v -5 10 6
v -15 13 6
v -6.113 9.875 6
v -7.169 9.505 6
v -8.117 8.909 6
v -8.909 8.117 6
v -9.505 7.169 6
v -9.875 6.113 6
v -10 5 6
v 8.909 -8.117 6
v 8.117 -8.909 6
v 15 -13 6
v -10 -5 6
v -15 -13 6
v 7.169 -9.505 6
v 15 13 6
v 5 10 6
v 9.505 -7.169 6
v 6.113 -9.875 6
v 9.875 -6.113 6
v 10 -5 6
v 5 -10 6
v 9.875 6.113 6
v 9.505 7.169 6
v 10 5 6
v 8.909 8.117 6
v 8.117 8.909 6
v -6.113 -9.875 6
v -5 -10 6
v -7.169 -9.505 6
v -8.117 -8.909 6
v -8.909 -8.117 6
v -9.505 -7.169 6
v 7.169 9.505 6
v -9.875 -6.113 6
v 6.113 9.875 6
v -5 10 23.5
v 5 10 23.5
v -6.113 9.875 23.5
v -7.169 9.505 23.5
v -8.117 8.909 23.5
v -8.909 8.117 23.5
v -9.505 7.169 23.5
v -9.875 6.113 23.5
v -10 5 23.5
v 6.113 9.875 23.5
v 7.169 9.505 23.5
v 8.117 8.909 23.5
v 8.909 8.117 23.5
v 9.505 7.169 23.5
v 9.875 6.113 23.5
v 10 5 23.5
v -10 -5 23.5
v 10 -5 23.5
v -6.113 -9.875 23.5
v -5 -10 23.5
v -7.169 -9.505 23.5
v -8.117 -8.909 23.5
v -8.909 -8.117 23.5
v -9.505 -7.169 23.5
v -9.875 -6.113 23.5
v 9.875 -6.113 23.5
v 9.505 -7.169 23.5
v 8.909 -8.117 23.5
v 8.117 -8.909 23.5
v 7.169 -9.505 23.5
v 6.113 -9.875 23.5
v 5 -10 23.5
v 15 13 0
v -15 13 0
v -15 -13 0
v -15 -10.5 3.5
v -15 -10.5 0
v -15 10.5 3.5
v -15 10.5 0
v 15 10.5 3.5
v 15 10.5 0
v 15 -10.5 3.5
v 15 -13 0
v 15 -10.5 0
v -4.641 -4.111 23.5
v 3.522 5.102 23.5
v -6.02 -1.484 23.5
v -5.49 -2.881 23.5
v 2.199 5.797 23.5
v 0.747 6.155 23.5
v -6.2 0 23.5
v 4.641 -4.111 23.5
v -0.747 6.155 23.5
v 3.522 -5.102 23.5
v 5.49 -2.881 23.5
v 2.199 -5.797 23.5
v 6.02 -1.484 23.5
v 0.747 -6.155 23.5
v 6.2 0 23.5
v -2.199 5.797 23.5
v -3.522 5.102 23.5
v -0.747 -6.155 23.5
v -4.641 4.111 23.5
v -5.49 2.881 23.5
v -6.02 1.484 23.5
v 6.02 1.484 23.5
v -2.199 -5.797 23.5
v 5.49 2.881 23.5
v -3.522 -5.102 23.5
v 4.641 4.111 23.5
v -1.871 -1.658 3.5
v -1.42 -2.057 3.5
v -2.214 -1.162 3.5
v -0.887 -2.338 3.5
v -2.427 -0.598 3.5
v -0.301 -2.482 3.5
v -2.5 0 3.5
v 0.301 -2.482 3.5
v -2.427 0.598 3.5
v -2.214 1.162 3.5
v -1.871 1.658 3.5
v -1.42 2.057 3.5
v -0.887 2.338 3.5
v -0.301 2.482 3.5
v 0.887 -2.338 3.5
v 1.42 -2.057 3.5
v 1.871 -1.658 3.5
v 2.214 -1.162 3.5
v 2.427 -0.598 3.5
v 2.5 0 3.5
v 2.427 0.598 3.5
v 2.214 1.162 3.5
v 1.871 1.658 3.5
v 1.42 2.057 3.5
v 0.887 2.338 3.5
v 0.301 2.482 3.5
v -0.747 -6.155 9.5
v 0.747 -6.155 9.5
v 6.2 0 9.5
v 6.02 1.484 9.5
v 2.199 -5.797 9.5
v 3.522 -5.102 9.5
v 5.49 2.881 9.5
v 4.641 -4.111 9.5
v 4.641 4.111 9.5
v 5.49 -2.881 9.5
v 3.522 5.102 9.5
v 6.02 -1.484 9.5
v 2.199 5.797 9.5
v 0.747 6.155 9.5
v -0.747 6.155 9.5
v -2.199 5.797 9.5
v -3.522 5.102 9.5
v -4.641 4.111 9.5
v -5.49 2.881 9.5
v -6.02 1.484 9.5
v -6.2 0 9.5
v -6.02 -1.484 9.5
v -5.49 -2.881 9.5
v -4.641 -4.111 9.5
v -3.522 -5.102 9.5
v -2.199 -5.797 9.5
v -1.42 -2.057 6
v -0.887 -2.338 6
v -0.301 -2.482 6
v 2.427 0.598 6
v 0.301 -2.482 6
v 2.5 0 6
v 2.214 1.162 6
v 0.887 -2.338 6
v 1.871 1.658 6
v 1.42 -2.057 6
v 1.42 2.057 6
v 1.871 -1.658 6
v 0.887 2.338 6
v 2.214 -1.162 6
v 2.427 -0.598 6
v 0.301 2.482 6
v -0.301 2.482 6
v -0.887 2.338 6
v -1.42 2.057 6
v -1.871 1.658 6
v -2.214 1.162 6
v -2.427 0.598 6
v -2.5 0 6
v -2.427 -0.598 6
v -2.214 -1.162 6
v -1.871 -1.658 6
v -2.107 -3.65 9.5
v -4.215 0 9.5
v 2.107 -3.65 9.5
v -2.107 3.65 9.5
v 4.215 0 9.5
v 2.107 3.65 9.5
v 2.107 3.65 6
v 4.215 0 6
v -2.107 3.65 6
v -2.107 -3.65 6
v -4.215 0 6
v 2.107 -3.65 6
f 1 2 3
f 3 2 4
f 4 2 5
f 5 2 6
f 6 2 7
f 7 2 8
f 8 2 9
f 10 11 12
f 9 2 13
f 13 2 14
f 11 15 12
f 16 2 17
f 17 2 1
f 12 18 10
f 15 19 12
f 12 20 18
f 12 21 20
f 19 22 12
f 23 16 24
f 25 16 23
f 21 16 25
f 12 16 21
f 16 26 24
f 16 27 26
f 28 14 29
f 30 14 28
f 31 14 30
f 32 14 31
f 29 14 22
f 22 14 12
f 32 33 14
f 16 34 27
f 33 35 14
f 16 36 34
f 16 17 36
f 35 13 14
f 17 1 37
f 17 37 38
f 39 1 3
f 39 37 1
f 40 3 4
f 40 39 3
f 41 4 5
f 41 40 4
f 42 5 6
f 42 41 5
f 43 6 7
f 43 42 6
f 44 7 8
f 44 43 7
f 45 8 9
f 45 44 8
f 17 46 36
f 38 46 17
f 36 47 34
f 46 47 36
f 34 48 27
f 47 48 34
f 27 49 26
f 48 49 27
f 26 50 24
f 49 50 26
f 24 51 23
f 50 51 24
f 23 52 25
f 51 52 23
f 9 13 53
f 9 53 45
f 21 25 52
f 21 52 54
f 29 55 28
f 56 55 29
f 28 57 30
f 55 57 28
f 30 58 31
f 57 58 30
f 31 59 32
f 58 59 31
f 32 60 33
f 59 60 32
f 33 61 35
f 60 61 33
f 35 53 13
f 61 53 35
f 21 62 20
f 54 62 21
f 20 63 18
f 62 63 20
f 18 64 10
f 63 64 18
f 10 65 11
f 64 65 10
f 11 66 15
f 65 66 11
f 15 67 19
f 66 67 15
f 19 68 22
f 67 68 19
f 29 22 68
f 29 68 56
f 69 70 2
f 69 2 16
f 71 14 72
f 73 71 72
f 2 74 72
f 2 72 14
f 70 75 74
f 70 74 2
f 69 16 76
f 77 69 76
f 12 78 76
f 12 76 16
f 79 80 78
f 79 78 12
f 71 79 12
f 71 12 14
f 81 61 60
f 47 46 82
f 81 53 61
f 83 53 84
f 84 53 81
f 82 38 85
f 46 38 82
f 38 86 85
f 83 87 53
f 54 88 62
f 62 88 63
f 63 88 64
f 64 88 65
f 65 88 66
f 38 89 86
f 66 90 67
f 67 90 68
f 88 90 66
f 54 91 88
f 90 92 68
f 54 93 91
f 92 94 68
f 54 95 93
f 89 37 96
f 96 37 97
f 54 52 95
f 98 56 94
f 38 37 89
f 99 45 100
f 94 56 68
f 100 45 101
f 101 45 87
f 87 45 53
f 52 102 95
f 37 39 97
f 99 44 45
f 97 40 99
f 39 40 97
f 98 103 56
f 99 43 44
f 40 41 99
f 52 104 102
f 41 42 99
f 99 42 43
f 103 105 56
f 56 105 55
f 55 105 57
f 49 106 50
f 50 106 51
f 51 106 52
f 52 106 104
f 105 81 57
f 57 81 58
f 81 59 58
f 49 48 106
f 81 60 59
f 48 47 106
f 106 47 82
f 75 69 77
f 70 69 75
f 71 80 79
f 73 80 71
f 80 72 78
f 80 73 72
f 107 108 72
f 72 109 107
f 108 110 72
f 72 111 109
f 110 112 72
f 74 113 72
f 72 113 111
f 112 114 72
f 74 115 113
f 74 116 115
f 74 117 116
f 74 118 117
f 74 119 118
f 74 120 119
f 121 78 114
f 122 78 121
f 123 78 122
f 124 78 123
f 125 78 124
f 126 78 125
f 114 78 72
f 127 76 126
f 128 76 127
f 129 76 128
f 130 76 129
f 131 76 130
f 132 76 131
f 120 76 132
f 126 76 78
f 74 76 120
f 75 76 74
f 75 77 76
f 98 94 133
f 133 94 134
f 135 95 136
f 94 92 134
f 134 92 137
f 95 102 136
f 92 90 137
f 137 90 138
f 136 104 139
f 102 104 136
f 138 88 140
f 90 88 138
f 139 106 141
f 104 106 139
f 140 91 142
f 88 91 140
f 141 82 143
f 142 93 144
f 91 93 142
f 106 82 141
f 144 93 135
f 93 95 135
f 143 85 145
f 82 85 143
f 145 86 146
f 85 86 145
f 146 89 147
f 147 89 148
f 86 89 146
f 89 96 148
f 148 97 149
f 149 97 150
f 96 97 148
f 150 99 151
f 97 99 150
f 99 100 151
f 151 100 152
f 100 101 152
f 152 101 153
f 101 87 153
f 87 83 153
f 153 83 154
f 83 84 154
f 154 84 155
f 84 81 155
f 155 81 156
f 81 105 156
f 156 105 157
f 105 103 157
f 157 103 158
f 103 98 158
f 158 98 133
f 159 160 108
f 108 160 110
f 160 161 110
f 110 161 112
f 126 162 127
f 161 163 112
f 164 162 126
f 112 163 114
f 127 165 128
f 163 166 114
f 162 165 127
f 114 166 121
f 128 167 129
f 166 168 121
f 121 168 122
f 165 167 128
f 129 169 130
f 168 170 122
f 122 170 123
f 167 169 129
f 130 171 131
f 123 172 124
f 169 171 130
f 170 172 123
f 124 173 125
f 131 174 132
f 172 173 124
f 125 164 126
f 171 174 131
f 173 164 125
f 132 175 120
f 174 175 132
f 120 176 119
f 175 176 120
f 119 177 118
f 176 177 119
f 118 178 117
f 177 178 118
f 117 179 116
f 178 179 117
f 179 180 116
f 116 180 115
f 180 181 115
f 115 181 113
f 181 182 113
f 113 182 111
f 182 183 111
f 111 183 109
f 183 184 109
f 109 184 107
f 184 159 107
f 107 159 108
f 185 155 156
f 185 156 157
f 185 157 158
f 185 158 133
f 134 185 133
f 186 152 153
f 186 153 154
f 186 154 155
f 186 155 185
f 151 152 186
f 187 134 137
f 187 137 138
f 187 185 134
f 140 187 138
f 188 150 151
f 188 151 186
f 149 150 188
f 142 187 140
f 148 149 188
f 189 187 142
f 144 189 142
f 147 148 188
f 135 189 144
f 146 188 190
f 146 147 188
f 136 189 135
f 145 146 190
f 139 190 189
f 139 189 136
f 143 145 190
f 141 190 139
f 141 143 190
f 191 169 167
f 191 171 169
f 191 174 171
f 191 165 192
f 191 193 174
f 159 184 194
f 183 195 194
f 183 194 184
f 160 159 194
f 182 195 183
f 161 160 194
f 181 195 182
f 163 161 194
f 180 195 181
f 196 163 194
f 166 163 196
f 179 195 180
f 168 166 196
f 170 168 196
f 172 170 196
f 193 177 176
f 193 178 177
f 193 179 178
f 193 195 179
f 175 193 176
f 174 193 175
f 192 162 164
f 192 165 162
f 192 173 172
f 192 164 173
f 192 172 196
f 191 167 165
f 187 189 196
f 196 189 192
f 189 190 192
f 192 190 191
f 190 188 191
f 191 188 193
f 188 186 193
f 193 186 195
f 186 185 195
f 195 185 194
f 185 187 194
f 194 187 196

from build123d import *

# Parameters (mm, degrees)
SKETCH_W        = 30
SKETCH_H        = 26
PAD_DEPTH       = 6
SKETCH001_W     = 46
SKETCH001_H     = 21
POCKET_DEPTH    = 3.5
SKETCH003_W     = 20
SKETCH003_H     = 20
PAD001_DEPTH    = 18.5
SKETCH004_R     = 6.2
POCKET001_DEPTH = 14
POCKET002_DEPTH = 3.5
SKETCH006_R     = 2.5
POCKET003_DEPTH = 6.001
FILLET_R        = 5


with BuildPart() as part:
    # Sketch → Pad (new body)
    with BuildSketch(Plane.XY):
        Rectangle(SKETCH_W, SKETCH_H)
    extrude(amount=PAD_DEPTH)

    # Sketch001 (on Face5 of Pad) → Pocket (cut)
    with BuildSketch(Plane(origin=(0, 0, 0), x_dir=(1, 0, 0), z_dir=(0, 0, -1))):
        Rectangle(SKETCH001_W, SKETCH001_H)
    extrude(amount=-POCKET_DEPTH, mode=Mode.SUBTRACT)

    # Sketch003 → Pad001 (join)
    with BuildSketch(Plane.XY.offset(5)):
        Rectangle(SKETCH003_W, SKETCH003_H)
    extrude(amount=PAD001_DEPTH)

    # Sketch004 (on Face15 of Pad001) → Pocket001 (cut)
    with BuildSketch(Plane.XY.offset(23.5)):
        Circle(SKETCH004_R)
    extrude(amount=-POCKET001_DEPTH, mode=Mode.SUBTRACT)

    # Sketch005 (on Face17 of Pocket001) → Pocket002 (cut)
    with BuildSketch(Plane.XY.offset(9.5)):
        Polygon((2.107328, -3.65), (4.214657, 0), (2.107328, 3.65), (-2.107328, 3.65), (-4.214657, 0), (-2.107328, -3.65), align=None)
    extrude(amount=-POCKET002_DEPTH, mode=Mode.SUBTRACT)

    # Sketch006 (on Face24 of Pocket002) → Pocket003 (cut, through all)
    with BuildSketch(Plane.XY.offset(6)):
        Circle(SKETCH006_R)
    extrude(amount=-POCKET003_DEPTH, mode=Mode.SUBTRACT)

    # Fillet
    fillet_edges = [part.edges().sort_by_distance(p)[0] for p in [
        (-10, 10, 14.75),
        (10, 10, 14.75),
        (10, -10, 14.75),
        (-10, -10, 14.75),
    ]]
    fillet(fillet_edges, radius=FILLET_R)


solid = part.part
